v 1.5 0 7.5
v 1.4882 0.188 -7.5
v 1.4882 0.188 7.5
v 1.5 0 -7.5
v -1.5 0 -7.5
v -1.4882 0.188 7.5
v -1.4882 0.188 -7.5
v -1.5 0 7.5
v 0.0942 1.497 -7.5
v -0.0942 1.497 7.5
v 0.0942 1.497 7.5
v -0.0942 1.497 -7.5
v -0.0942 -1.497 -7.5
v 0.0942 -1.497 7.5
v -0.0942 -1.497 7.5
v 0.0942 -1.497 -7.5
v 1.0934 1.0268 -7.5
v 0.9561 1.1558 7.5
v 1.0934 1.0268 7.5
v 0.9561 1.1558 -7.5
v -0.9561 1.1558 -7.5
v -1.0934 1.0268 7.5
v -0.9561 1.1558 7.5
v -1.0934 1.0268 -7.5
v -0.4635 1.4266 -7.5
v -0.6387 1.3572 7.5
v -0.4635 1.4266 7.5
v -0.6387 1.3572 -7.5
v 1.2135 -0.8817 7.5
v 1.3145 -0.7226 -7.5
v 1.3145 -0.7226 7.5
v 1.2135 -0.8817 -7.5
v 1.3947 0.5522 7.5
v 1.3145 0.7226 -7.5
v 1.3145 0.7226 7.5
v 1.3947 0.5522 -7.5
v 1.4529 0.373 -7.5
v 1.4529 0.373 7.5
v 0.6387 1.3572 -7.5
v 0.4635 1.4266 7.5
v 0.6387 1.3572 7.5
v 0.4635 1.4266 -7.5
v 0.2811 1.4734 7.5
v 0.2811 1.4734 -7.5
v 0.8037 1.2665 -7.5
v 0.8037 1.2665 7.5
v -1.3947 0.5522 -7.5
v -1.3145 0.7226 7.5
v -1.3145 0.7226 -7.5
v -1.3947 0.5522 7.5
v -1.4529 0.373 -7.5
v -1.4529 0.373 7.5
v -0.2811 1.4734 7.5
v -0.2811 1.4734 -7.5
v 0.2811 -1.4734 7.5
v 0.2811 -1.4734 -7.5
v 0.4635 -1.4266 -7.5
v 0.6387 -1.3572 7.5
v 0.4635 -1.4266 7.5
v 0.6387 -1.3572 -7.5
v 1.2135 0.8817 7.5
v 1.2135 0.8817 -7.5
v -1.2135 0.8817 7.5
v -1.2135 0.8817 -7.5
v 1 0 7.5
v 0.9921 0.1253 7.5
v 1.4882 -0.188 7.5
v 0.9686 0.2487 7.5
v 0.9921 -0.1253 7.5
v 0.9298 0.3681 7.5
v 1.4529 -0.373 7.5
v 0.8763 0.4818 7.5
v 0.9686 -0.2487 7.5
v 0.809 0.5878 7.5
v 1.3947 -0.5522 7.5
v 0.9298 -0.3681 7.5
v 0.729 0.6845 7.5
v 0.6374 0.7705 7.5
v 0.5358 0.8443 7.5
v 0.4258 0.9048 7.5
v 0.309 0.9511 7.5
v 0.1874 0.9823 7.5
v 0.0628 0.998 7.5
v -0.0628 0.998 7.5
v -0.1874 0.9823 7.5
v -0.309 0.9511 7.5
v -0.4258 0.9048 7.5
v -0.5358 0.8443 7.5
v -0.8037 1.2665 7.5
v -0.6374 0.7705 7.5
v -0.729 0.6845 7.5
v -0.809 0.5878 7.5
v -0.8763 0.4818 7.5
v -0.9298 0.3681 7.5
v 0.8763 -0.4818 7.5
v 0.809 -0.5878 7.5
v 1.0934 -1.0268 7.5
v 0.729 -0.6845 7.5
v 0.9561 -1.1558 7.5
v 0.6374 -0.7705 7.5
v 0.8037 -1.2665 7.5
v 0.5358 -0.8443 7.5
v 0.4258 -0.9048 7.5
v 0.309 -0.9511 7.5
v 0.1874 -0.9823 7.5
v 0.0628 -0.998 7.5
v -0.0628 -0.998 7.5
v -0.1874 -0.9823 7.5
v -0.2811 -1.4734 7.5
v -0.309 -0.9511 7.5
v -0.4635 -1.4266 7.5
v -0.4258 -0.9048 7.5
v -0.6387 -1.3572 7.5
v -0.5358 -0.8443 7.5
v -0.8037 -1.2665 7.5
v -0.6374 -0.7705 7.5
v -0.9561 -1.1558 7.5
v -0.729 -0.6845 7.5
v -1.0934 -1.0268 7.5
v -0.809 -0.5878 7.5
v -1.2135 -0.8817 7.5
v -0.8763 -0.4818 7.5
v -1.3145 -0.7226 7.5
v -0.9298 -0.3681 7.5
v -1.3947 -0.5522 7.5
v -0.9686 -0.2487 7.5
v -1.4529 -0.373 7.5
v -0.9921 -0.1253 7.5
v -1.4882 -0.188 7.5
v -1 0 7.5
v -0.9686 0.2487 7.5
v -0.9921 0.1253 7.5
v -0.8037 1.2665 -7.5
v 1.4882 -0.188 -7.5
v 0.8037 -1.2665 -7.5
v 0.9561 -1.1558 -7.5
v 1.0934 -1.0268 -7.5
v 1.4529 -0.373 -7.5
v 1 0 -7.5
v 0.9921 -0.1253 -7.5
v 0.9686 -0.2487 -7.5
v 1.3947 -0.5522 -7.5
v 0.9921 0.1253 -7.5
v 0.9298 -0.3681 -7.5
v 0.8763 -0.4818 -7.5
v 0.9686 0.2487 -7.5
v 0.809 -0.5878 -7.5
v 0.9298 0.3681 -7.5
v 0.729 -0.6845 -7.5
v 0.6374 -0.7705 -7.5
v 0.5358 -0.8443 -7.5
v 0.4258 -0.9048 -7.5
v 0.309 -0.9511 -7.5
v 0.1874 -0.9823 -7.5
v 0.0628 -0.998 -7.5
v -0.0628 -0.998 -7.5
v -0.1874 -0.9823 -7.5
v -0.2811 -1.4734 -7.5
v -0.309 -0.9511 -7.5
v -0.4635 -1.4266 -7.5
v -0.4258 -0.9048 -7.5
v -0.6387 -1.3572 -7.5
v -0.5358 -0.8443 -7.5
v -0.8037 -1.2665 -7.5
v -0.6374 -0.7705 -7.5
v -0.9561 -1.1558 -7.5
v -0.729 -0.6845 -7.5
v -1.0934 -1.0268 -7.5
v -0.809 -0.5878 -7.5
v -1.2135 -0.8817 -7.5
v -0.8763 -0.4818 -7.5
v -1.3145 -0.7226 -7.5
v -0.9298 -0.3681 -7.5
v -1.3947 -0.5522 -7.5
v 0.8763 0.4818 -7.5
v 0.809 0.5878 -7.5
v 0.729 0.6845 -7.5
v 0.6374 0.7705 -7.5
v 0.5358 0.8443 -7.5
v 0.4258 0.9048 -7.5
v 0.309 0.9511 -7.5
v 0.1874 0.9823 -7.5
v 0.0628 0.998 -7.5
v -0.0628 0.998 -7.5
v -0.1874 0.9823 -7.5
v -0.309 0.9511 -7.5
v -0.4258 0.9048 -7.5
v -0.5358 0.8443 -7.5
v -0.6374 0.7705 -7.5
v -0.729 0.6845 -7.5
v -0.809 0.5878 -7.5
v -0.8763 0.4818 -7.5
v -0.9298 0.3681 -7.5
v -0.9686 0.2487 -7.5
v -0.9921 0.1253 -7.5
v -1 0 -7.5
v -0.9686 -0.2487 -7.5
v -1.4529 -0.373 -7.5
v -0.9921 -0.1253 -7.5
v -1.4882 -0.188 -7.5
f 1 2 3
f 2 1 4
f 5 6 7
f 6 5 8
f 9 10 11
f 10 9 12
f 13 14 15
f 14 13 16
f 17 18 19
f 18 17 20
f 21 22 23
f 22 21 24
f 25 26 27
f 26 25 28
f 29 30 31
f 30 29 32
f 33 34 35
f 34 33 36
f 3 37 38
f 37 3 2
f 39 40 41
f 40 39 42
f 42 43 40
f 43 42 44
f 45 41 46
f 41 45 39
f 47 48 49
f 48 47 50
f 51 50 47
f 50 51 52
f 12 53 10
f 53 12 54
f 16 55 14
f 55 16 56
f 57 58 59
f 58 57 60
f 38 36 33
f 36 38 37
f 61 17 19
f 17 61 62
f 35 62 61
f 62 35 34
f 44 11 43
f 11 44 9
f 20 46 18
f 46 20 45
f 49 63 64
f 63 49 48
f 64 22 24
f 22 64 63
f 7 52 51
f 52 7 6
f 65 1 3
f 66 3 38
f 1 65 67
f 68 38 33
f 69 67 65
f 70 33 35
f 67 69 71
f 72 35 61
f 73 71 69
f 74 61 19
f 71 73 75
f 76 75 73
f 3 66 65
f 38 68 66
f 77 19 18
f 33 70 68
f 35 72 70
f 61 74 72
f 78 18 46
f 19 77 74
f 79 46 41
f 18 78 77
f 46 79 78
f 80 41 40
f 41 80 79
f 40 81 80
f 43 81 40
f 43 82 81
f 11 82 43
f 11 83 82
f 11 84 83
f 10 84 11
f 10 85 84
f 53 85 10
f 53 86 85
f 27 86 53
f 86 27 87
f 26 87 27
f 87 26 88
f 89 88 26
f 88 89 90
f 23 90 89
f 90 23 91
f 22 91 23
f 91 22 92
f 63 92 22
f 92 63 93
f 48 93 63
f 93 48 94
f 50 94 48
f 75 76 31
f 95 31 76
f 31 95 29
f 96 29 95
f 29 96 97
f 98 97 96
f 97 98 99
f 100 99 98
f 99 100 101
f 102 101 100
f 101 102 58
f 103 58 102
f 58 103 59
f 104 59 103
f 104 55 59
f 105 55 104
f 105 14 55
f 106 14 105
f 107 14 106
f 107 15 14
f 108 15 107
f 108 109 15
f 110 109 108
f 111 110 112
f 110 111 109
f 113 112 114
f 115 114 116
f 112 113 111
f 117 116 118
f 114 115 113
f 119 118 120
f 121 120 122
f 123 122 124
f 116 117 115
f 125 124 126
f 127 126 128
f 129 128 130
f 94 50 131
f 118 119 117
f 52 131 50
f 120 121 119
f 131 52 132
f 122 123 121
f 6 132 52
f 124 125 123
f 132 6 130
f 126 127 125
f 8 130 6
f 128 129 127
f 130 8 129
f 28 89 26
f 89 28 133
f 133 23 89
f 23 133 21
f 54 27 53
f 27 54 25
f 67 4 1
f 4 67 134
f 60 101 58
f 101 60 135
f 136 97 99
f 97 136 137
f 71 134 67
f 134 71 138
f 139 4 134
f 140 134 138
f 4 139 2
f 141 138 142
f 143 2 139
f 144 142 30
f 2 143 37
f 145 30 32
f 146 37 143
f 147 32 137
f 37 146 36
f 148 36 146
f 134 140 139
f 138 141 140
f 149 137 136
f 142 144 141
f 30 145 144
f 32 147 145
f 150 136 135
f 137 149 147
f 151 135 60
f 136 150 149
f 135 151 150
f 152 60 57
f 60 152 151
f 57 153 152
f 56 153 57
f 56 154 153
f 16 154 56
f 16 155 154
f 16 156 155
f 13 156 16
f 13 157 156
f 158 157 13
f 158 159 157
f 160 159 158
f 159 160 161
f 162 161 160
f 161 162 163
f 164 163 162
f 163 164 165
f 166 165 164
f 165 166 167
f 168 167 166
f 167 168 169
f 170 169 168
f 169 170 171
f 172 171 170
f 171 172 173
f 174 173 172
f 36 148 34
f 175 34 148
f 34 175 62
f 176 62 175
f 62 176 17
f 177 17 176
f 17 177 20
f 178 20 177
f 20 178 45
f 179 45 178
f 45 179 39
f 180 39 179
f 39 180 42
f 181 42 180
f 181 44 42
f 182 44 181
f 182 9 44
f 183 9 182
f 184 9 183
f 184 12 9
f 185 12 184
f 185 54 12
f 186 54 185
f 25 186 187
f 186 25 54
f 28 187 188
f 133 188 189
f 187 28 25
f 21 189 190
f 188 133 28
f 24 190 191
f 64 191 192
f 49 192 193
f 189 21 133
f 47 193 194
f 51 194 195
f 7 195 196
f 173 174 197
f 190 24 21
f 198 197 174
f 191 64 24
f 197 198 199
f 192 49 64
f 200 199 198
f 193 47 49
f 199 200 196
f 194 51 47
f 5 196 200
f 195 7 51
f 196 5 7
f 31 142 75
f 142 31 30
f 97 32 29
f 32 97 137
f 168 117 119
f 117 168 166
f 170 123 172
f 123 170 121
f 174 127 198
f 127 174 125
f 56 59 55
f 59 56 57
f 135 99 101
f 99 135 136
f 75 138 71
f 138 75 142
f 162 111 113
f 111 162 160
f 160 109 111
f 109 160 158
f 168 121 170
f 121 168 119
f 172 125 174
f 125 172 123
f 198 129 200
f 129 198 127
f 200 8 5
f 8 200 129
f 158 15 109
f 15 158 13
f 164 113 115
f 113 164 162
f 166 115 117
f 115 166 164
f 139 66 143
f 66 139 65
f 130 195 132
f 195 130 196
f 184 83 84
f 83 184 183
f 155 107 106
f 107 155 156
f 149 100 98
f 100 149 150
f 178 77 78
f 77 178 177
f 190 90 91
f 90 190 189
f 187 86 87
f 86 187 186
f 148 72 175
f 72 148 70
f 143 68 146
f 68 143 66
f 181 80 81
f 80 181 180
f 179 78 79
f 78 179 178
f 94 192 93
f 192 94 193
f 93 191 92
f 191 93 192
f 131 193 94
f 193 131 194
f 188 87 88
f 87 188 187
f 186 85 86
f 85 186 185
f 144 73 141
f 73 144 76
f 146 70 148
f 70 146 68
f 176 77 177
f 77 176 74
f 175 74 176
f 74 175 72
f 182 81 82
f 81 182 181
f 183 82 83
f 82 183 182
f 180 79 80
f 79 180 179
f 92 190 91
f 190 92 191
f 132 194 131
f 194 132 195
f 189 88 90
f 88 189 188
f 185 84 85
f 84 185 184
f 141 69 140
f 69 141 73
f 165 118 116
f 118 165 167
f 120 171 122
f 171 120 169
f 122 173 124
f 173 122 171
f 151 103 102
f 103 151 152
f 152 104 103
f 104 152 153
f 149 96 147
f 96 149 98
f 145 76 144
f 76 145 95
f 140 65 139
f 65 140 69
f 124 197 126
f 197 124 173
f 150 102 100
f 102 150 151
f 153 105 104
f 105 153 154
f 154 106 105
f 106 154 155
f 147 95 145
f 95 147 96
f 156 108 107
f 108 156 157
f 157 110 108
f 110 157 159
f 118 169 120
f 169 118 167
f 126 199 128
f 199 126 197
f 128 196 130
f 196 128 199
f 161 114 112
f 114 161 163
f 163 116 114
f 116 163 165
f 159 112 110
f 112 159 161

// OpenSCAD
$fn = 50;


difference() {
	union() {
		translate(v = [0, 0, -7.5000000000]) {
			cylinder(h = 15, r = 1.5000000000);
		}
	}
	union() {
		translate(v = [0, 0, -100.0000000000]) {
			cylinder(h = 200, r = 1.0000000000);
		}
	}
}
